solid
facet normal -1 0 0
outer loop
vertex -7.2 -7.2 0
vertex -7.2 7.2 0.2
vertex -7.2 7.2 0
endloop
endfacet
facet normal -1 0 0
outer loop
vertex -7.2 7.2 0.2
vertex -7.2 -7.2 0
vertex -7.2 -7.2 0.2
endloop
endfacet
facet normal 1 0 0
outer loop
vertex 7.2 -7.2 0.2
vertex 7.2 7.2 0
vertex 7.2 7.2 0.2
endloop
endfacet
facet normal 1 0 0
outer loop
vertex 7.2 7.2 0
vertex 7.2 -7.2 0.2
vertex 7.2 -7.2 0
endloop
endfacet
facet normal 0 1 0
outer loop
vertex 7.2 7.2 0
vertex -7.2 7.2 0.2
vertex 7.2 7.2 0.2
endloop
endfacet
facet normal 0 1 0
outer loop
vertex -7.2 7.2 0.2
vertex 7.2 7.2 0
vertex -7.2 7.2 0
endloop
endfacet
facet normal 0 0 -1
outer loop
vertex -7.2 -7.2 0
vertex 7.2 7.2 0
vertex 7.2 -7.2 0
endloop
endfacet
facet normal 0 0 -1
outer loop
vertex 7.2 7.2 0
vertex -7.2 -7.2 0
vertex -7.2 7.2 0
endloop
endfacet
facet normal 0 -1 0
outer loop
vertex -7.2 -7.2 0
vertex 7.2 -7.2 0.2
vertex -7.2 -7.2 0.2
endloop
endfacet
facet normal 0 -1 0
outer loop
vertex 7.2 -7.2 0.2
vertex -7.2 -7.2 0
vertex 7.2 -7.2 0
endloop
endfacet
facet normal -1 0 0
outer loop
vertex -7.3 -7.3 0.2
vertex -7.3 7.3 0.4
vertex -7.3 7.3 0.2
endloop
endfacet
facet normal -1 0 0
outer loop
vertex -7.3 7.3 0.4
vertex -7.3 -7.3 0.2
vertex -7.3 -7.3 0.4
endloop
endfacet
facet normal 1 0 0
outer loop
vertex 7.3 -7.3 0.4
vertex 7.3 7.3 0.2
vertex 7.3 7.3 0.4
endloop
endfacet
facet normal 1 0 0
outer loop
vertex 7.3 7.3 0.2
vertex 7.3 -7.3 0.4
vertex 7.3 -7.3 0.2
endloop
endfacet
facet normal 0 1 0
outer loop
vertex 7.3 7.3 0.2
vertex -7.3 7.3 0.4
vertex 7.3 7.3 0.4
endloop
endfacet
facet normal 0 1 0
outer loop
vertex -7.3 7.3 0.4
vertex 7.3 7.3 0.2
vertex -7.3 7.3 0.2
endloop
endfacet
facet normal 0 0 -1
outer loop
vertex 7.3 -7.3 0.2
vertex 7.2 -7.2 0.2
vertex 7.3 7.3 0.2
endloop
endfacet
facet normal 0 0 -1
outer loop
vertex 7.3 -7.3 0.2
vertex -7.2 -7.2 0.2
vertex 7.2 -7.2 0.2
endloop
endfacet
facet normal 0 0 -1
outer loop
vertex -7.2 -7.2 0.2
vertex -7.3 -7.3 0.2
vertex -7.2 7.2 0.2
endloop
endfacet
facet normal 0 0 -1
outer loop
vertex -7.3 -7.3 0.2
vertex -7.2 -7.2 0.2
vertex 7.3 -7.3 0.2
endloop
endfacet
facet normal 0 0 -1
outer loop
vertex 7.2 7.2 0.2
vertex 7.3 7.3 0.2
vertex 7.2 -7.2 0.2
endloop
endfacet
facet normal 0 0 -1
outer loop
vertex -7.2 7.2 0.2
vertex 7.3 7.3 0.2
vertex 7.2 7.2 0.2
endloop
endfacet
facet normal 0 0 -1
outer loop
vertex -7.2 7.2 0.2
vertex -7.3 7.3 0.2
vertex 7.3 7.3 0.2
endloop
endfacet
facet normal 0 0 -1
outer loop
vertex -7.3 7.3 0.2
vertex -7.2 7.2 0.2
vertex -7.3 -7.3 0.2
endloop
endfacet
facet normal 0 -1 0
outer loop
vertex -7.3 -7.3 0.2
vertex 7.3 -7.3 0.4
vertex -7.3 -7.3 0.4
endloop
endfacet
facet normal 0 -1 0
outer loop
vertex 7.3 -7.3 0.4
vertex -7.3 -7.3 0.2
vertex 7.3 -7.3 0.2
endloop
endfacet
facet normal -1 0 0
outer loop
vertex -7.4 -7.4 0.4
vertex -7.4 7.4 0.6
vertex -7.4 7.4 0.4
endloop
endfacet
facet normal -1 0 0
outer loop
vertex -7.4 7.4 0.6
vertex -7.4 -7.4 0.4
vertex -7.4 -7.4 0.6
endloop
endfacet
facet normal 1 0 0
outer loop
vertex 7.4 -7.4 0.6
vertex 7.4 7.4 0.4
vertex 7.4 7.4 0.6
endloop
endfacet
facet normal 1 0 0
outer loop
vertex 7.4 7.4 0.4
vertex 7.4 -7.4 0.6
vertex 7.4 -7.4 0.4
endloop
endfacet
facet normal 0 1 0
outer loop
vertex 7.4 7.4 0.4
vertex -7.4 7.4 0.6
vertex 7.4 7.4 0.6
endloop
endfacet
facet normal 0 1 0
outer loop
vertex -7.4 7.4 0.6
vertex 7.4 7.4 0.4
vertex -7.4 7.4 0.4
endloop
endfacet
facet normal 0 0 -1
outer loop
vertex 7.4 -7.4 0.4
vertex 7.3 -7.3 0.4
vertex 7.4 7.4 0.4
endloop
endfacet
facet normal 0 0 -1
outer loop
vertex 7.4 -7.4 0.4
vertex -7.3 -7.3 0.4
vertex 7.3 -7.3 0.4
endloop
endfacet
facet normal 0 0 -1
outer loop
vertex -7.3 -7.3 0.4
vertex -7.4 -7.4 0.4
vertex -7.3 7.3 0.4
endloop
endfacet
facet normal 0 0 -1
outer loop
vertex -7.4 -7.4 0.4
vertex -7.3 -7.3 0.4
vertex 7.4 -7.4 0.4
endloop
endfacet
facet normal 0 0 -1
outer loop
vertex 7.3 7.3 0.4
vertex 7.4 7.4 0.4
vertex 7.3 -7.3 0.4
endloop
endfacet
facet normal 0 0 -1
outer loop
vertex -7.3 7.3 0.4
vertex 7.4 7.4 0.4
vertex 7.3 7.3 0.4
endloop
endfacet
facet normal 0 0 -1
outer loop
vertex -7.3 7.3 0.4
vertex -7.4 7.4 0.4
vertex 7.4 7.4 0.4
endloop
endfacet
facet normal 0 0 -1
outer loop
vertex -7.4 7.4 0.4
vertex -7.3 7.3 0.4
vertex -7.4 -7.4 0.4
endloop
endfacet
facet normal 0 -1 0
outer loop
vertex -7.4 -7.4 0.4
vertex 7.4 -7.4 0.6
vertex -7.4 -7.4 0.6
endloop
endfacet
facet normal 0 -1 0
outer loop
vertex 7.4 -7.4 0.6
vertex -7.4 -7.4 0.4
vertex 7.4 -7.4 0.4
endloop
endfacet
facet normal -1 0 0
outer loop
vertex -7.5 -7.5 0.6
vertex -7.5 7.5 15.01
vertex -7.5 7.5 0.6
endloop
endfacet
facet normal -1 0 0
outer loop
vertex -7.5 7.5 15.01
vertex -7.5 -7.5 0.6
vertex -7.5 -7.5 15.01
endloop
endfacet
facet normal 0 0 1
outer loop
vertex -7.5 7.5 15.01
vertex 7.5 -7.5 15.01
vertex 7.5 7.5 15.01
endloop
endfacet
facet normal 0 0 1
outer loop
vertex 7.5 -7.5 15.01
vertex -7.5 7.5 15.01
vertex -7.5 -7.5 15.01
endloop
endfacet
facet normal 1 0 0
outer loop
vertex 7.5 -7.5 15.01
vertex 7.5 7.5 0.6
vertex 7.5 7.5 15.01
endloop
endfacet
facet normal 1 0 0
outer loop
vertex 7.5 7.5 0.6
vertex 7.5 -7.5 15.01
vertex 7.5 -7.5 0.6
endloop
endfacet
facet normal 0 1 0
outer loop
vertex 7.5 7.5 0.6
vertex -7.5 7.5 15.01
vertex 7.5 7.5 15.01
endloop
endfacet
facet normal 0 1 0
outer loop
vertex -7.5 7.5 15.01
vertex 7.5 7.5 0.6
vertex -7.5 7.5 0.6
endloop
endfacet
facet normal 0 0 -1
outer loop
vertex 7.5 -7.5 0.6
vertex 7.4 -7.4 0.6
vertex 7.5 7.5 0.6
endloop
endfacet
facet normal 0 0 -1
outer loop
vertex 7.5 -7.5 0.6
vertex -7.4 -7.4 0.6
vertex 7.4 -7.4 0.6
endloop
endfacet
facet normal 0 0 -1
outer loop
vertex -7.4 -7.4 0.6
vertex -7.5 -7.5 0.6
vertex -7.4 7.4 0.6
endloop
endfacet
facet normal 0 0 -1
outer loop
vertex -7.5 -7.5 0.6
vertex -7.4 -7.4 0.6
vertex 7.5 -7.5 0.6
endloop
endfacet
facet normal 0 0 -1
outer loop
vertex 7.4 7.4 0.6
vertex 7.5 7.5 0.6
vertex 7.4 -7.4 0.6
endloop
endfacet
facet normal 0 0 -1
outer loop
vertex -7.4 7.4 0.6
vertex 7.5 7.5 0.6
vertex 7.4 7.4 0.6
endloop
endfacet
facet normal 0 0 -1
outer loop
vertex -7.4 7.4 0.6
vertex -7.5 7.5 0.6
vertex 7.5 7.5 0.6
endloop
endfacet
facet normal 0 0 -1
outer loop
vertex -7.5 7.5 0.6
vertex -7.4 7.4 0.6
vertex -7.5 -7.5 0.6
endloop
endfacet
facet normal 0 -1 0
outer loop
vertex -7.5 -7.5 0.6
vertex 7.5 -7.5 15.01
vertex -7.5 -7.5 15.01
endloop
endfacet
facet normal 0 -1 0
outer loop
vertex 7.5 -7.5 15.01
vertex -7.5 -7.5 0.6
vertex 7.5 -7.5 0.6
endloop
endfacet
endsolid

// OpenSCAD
// Experimental first layers inset to eliminate elephan foot syndrom. 

// Adding '0' makes it hidden in Thingiverse customizer.
eps1 = 0.01 + 0;

// Cube dimension on the X axis.
cube_dx = 15;

// Cube dimension on the Y axis.
cube_dy = 15;

// Cube dimension on the Z axis.
cube_dz =  15;

// Printing layer height.
layer_height = 0.2;

// Inset levels for first layers, bottom layer first. Setup as many layers as you 
// like, and the rest will have an inset of 0.
insets = [0.3, 0.2, 0.1];

// Total height on insets layers. 
insets_height = len(insets) * layer_height;

// A centered cube of given dimensions with z elevation above the x,y plane.
module box(z, dx, dy, dz) {
  translate([-dx/2, -dy/2, z]) cube([dx, dy, dz+eps1]);
}

// The non inset part of the cube
box(insets_height, cube_dx, cube_dy, cube_dz-insets_height);

// The inset layers at the bottom.
for (i= [0:len(insets)-1]) {
  box(i*layer_height, cube_dx-2*insets[i], cube_dy-2*insets[i], layer_height);
}
